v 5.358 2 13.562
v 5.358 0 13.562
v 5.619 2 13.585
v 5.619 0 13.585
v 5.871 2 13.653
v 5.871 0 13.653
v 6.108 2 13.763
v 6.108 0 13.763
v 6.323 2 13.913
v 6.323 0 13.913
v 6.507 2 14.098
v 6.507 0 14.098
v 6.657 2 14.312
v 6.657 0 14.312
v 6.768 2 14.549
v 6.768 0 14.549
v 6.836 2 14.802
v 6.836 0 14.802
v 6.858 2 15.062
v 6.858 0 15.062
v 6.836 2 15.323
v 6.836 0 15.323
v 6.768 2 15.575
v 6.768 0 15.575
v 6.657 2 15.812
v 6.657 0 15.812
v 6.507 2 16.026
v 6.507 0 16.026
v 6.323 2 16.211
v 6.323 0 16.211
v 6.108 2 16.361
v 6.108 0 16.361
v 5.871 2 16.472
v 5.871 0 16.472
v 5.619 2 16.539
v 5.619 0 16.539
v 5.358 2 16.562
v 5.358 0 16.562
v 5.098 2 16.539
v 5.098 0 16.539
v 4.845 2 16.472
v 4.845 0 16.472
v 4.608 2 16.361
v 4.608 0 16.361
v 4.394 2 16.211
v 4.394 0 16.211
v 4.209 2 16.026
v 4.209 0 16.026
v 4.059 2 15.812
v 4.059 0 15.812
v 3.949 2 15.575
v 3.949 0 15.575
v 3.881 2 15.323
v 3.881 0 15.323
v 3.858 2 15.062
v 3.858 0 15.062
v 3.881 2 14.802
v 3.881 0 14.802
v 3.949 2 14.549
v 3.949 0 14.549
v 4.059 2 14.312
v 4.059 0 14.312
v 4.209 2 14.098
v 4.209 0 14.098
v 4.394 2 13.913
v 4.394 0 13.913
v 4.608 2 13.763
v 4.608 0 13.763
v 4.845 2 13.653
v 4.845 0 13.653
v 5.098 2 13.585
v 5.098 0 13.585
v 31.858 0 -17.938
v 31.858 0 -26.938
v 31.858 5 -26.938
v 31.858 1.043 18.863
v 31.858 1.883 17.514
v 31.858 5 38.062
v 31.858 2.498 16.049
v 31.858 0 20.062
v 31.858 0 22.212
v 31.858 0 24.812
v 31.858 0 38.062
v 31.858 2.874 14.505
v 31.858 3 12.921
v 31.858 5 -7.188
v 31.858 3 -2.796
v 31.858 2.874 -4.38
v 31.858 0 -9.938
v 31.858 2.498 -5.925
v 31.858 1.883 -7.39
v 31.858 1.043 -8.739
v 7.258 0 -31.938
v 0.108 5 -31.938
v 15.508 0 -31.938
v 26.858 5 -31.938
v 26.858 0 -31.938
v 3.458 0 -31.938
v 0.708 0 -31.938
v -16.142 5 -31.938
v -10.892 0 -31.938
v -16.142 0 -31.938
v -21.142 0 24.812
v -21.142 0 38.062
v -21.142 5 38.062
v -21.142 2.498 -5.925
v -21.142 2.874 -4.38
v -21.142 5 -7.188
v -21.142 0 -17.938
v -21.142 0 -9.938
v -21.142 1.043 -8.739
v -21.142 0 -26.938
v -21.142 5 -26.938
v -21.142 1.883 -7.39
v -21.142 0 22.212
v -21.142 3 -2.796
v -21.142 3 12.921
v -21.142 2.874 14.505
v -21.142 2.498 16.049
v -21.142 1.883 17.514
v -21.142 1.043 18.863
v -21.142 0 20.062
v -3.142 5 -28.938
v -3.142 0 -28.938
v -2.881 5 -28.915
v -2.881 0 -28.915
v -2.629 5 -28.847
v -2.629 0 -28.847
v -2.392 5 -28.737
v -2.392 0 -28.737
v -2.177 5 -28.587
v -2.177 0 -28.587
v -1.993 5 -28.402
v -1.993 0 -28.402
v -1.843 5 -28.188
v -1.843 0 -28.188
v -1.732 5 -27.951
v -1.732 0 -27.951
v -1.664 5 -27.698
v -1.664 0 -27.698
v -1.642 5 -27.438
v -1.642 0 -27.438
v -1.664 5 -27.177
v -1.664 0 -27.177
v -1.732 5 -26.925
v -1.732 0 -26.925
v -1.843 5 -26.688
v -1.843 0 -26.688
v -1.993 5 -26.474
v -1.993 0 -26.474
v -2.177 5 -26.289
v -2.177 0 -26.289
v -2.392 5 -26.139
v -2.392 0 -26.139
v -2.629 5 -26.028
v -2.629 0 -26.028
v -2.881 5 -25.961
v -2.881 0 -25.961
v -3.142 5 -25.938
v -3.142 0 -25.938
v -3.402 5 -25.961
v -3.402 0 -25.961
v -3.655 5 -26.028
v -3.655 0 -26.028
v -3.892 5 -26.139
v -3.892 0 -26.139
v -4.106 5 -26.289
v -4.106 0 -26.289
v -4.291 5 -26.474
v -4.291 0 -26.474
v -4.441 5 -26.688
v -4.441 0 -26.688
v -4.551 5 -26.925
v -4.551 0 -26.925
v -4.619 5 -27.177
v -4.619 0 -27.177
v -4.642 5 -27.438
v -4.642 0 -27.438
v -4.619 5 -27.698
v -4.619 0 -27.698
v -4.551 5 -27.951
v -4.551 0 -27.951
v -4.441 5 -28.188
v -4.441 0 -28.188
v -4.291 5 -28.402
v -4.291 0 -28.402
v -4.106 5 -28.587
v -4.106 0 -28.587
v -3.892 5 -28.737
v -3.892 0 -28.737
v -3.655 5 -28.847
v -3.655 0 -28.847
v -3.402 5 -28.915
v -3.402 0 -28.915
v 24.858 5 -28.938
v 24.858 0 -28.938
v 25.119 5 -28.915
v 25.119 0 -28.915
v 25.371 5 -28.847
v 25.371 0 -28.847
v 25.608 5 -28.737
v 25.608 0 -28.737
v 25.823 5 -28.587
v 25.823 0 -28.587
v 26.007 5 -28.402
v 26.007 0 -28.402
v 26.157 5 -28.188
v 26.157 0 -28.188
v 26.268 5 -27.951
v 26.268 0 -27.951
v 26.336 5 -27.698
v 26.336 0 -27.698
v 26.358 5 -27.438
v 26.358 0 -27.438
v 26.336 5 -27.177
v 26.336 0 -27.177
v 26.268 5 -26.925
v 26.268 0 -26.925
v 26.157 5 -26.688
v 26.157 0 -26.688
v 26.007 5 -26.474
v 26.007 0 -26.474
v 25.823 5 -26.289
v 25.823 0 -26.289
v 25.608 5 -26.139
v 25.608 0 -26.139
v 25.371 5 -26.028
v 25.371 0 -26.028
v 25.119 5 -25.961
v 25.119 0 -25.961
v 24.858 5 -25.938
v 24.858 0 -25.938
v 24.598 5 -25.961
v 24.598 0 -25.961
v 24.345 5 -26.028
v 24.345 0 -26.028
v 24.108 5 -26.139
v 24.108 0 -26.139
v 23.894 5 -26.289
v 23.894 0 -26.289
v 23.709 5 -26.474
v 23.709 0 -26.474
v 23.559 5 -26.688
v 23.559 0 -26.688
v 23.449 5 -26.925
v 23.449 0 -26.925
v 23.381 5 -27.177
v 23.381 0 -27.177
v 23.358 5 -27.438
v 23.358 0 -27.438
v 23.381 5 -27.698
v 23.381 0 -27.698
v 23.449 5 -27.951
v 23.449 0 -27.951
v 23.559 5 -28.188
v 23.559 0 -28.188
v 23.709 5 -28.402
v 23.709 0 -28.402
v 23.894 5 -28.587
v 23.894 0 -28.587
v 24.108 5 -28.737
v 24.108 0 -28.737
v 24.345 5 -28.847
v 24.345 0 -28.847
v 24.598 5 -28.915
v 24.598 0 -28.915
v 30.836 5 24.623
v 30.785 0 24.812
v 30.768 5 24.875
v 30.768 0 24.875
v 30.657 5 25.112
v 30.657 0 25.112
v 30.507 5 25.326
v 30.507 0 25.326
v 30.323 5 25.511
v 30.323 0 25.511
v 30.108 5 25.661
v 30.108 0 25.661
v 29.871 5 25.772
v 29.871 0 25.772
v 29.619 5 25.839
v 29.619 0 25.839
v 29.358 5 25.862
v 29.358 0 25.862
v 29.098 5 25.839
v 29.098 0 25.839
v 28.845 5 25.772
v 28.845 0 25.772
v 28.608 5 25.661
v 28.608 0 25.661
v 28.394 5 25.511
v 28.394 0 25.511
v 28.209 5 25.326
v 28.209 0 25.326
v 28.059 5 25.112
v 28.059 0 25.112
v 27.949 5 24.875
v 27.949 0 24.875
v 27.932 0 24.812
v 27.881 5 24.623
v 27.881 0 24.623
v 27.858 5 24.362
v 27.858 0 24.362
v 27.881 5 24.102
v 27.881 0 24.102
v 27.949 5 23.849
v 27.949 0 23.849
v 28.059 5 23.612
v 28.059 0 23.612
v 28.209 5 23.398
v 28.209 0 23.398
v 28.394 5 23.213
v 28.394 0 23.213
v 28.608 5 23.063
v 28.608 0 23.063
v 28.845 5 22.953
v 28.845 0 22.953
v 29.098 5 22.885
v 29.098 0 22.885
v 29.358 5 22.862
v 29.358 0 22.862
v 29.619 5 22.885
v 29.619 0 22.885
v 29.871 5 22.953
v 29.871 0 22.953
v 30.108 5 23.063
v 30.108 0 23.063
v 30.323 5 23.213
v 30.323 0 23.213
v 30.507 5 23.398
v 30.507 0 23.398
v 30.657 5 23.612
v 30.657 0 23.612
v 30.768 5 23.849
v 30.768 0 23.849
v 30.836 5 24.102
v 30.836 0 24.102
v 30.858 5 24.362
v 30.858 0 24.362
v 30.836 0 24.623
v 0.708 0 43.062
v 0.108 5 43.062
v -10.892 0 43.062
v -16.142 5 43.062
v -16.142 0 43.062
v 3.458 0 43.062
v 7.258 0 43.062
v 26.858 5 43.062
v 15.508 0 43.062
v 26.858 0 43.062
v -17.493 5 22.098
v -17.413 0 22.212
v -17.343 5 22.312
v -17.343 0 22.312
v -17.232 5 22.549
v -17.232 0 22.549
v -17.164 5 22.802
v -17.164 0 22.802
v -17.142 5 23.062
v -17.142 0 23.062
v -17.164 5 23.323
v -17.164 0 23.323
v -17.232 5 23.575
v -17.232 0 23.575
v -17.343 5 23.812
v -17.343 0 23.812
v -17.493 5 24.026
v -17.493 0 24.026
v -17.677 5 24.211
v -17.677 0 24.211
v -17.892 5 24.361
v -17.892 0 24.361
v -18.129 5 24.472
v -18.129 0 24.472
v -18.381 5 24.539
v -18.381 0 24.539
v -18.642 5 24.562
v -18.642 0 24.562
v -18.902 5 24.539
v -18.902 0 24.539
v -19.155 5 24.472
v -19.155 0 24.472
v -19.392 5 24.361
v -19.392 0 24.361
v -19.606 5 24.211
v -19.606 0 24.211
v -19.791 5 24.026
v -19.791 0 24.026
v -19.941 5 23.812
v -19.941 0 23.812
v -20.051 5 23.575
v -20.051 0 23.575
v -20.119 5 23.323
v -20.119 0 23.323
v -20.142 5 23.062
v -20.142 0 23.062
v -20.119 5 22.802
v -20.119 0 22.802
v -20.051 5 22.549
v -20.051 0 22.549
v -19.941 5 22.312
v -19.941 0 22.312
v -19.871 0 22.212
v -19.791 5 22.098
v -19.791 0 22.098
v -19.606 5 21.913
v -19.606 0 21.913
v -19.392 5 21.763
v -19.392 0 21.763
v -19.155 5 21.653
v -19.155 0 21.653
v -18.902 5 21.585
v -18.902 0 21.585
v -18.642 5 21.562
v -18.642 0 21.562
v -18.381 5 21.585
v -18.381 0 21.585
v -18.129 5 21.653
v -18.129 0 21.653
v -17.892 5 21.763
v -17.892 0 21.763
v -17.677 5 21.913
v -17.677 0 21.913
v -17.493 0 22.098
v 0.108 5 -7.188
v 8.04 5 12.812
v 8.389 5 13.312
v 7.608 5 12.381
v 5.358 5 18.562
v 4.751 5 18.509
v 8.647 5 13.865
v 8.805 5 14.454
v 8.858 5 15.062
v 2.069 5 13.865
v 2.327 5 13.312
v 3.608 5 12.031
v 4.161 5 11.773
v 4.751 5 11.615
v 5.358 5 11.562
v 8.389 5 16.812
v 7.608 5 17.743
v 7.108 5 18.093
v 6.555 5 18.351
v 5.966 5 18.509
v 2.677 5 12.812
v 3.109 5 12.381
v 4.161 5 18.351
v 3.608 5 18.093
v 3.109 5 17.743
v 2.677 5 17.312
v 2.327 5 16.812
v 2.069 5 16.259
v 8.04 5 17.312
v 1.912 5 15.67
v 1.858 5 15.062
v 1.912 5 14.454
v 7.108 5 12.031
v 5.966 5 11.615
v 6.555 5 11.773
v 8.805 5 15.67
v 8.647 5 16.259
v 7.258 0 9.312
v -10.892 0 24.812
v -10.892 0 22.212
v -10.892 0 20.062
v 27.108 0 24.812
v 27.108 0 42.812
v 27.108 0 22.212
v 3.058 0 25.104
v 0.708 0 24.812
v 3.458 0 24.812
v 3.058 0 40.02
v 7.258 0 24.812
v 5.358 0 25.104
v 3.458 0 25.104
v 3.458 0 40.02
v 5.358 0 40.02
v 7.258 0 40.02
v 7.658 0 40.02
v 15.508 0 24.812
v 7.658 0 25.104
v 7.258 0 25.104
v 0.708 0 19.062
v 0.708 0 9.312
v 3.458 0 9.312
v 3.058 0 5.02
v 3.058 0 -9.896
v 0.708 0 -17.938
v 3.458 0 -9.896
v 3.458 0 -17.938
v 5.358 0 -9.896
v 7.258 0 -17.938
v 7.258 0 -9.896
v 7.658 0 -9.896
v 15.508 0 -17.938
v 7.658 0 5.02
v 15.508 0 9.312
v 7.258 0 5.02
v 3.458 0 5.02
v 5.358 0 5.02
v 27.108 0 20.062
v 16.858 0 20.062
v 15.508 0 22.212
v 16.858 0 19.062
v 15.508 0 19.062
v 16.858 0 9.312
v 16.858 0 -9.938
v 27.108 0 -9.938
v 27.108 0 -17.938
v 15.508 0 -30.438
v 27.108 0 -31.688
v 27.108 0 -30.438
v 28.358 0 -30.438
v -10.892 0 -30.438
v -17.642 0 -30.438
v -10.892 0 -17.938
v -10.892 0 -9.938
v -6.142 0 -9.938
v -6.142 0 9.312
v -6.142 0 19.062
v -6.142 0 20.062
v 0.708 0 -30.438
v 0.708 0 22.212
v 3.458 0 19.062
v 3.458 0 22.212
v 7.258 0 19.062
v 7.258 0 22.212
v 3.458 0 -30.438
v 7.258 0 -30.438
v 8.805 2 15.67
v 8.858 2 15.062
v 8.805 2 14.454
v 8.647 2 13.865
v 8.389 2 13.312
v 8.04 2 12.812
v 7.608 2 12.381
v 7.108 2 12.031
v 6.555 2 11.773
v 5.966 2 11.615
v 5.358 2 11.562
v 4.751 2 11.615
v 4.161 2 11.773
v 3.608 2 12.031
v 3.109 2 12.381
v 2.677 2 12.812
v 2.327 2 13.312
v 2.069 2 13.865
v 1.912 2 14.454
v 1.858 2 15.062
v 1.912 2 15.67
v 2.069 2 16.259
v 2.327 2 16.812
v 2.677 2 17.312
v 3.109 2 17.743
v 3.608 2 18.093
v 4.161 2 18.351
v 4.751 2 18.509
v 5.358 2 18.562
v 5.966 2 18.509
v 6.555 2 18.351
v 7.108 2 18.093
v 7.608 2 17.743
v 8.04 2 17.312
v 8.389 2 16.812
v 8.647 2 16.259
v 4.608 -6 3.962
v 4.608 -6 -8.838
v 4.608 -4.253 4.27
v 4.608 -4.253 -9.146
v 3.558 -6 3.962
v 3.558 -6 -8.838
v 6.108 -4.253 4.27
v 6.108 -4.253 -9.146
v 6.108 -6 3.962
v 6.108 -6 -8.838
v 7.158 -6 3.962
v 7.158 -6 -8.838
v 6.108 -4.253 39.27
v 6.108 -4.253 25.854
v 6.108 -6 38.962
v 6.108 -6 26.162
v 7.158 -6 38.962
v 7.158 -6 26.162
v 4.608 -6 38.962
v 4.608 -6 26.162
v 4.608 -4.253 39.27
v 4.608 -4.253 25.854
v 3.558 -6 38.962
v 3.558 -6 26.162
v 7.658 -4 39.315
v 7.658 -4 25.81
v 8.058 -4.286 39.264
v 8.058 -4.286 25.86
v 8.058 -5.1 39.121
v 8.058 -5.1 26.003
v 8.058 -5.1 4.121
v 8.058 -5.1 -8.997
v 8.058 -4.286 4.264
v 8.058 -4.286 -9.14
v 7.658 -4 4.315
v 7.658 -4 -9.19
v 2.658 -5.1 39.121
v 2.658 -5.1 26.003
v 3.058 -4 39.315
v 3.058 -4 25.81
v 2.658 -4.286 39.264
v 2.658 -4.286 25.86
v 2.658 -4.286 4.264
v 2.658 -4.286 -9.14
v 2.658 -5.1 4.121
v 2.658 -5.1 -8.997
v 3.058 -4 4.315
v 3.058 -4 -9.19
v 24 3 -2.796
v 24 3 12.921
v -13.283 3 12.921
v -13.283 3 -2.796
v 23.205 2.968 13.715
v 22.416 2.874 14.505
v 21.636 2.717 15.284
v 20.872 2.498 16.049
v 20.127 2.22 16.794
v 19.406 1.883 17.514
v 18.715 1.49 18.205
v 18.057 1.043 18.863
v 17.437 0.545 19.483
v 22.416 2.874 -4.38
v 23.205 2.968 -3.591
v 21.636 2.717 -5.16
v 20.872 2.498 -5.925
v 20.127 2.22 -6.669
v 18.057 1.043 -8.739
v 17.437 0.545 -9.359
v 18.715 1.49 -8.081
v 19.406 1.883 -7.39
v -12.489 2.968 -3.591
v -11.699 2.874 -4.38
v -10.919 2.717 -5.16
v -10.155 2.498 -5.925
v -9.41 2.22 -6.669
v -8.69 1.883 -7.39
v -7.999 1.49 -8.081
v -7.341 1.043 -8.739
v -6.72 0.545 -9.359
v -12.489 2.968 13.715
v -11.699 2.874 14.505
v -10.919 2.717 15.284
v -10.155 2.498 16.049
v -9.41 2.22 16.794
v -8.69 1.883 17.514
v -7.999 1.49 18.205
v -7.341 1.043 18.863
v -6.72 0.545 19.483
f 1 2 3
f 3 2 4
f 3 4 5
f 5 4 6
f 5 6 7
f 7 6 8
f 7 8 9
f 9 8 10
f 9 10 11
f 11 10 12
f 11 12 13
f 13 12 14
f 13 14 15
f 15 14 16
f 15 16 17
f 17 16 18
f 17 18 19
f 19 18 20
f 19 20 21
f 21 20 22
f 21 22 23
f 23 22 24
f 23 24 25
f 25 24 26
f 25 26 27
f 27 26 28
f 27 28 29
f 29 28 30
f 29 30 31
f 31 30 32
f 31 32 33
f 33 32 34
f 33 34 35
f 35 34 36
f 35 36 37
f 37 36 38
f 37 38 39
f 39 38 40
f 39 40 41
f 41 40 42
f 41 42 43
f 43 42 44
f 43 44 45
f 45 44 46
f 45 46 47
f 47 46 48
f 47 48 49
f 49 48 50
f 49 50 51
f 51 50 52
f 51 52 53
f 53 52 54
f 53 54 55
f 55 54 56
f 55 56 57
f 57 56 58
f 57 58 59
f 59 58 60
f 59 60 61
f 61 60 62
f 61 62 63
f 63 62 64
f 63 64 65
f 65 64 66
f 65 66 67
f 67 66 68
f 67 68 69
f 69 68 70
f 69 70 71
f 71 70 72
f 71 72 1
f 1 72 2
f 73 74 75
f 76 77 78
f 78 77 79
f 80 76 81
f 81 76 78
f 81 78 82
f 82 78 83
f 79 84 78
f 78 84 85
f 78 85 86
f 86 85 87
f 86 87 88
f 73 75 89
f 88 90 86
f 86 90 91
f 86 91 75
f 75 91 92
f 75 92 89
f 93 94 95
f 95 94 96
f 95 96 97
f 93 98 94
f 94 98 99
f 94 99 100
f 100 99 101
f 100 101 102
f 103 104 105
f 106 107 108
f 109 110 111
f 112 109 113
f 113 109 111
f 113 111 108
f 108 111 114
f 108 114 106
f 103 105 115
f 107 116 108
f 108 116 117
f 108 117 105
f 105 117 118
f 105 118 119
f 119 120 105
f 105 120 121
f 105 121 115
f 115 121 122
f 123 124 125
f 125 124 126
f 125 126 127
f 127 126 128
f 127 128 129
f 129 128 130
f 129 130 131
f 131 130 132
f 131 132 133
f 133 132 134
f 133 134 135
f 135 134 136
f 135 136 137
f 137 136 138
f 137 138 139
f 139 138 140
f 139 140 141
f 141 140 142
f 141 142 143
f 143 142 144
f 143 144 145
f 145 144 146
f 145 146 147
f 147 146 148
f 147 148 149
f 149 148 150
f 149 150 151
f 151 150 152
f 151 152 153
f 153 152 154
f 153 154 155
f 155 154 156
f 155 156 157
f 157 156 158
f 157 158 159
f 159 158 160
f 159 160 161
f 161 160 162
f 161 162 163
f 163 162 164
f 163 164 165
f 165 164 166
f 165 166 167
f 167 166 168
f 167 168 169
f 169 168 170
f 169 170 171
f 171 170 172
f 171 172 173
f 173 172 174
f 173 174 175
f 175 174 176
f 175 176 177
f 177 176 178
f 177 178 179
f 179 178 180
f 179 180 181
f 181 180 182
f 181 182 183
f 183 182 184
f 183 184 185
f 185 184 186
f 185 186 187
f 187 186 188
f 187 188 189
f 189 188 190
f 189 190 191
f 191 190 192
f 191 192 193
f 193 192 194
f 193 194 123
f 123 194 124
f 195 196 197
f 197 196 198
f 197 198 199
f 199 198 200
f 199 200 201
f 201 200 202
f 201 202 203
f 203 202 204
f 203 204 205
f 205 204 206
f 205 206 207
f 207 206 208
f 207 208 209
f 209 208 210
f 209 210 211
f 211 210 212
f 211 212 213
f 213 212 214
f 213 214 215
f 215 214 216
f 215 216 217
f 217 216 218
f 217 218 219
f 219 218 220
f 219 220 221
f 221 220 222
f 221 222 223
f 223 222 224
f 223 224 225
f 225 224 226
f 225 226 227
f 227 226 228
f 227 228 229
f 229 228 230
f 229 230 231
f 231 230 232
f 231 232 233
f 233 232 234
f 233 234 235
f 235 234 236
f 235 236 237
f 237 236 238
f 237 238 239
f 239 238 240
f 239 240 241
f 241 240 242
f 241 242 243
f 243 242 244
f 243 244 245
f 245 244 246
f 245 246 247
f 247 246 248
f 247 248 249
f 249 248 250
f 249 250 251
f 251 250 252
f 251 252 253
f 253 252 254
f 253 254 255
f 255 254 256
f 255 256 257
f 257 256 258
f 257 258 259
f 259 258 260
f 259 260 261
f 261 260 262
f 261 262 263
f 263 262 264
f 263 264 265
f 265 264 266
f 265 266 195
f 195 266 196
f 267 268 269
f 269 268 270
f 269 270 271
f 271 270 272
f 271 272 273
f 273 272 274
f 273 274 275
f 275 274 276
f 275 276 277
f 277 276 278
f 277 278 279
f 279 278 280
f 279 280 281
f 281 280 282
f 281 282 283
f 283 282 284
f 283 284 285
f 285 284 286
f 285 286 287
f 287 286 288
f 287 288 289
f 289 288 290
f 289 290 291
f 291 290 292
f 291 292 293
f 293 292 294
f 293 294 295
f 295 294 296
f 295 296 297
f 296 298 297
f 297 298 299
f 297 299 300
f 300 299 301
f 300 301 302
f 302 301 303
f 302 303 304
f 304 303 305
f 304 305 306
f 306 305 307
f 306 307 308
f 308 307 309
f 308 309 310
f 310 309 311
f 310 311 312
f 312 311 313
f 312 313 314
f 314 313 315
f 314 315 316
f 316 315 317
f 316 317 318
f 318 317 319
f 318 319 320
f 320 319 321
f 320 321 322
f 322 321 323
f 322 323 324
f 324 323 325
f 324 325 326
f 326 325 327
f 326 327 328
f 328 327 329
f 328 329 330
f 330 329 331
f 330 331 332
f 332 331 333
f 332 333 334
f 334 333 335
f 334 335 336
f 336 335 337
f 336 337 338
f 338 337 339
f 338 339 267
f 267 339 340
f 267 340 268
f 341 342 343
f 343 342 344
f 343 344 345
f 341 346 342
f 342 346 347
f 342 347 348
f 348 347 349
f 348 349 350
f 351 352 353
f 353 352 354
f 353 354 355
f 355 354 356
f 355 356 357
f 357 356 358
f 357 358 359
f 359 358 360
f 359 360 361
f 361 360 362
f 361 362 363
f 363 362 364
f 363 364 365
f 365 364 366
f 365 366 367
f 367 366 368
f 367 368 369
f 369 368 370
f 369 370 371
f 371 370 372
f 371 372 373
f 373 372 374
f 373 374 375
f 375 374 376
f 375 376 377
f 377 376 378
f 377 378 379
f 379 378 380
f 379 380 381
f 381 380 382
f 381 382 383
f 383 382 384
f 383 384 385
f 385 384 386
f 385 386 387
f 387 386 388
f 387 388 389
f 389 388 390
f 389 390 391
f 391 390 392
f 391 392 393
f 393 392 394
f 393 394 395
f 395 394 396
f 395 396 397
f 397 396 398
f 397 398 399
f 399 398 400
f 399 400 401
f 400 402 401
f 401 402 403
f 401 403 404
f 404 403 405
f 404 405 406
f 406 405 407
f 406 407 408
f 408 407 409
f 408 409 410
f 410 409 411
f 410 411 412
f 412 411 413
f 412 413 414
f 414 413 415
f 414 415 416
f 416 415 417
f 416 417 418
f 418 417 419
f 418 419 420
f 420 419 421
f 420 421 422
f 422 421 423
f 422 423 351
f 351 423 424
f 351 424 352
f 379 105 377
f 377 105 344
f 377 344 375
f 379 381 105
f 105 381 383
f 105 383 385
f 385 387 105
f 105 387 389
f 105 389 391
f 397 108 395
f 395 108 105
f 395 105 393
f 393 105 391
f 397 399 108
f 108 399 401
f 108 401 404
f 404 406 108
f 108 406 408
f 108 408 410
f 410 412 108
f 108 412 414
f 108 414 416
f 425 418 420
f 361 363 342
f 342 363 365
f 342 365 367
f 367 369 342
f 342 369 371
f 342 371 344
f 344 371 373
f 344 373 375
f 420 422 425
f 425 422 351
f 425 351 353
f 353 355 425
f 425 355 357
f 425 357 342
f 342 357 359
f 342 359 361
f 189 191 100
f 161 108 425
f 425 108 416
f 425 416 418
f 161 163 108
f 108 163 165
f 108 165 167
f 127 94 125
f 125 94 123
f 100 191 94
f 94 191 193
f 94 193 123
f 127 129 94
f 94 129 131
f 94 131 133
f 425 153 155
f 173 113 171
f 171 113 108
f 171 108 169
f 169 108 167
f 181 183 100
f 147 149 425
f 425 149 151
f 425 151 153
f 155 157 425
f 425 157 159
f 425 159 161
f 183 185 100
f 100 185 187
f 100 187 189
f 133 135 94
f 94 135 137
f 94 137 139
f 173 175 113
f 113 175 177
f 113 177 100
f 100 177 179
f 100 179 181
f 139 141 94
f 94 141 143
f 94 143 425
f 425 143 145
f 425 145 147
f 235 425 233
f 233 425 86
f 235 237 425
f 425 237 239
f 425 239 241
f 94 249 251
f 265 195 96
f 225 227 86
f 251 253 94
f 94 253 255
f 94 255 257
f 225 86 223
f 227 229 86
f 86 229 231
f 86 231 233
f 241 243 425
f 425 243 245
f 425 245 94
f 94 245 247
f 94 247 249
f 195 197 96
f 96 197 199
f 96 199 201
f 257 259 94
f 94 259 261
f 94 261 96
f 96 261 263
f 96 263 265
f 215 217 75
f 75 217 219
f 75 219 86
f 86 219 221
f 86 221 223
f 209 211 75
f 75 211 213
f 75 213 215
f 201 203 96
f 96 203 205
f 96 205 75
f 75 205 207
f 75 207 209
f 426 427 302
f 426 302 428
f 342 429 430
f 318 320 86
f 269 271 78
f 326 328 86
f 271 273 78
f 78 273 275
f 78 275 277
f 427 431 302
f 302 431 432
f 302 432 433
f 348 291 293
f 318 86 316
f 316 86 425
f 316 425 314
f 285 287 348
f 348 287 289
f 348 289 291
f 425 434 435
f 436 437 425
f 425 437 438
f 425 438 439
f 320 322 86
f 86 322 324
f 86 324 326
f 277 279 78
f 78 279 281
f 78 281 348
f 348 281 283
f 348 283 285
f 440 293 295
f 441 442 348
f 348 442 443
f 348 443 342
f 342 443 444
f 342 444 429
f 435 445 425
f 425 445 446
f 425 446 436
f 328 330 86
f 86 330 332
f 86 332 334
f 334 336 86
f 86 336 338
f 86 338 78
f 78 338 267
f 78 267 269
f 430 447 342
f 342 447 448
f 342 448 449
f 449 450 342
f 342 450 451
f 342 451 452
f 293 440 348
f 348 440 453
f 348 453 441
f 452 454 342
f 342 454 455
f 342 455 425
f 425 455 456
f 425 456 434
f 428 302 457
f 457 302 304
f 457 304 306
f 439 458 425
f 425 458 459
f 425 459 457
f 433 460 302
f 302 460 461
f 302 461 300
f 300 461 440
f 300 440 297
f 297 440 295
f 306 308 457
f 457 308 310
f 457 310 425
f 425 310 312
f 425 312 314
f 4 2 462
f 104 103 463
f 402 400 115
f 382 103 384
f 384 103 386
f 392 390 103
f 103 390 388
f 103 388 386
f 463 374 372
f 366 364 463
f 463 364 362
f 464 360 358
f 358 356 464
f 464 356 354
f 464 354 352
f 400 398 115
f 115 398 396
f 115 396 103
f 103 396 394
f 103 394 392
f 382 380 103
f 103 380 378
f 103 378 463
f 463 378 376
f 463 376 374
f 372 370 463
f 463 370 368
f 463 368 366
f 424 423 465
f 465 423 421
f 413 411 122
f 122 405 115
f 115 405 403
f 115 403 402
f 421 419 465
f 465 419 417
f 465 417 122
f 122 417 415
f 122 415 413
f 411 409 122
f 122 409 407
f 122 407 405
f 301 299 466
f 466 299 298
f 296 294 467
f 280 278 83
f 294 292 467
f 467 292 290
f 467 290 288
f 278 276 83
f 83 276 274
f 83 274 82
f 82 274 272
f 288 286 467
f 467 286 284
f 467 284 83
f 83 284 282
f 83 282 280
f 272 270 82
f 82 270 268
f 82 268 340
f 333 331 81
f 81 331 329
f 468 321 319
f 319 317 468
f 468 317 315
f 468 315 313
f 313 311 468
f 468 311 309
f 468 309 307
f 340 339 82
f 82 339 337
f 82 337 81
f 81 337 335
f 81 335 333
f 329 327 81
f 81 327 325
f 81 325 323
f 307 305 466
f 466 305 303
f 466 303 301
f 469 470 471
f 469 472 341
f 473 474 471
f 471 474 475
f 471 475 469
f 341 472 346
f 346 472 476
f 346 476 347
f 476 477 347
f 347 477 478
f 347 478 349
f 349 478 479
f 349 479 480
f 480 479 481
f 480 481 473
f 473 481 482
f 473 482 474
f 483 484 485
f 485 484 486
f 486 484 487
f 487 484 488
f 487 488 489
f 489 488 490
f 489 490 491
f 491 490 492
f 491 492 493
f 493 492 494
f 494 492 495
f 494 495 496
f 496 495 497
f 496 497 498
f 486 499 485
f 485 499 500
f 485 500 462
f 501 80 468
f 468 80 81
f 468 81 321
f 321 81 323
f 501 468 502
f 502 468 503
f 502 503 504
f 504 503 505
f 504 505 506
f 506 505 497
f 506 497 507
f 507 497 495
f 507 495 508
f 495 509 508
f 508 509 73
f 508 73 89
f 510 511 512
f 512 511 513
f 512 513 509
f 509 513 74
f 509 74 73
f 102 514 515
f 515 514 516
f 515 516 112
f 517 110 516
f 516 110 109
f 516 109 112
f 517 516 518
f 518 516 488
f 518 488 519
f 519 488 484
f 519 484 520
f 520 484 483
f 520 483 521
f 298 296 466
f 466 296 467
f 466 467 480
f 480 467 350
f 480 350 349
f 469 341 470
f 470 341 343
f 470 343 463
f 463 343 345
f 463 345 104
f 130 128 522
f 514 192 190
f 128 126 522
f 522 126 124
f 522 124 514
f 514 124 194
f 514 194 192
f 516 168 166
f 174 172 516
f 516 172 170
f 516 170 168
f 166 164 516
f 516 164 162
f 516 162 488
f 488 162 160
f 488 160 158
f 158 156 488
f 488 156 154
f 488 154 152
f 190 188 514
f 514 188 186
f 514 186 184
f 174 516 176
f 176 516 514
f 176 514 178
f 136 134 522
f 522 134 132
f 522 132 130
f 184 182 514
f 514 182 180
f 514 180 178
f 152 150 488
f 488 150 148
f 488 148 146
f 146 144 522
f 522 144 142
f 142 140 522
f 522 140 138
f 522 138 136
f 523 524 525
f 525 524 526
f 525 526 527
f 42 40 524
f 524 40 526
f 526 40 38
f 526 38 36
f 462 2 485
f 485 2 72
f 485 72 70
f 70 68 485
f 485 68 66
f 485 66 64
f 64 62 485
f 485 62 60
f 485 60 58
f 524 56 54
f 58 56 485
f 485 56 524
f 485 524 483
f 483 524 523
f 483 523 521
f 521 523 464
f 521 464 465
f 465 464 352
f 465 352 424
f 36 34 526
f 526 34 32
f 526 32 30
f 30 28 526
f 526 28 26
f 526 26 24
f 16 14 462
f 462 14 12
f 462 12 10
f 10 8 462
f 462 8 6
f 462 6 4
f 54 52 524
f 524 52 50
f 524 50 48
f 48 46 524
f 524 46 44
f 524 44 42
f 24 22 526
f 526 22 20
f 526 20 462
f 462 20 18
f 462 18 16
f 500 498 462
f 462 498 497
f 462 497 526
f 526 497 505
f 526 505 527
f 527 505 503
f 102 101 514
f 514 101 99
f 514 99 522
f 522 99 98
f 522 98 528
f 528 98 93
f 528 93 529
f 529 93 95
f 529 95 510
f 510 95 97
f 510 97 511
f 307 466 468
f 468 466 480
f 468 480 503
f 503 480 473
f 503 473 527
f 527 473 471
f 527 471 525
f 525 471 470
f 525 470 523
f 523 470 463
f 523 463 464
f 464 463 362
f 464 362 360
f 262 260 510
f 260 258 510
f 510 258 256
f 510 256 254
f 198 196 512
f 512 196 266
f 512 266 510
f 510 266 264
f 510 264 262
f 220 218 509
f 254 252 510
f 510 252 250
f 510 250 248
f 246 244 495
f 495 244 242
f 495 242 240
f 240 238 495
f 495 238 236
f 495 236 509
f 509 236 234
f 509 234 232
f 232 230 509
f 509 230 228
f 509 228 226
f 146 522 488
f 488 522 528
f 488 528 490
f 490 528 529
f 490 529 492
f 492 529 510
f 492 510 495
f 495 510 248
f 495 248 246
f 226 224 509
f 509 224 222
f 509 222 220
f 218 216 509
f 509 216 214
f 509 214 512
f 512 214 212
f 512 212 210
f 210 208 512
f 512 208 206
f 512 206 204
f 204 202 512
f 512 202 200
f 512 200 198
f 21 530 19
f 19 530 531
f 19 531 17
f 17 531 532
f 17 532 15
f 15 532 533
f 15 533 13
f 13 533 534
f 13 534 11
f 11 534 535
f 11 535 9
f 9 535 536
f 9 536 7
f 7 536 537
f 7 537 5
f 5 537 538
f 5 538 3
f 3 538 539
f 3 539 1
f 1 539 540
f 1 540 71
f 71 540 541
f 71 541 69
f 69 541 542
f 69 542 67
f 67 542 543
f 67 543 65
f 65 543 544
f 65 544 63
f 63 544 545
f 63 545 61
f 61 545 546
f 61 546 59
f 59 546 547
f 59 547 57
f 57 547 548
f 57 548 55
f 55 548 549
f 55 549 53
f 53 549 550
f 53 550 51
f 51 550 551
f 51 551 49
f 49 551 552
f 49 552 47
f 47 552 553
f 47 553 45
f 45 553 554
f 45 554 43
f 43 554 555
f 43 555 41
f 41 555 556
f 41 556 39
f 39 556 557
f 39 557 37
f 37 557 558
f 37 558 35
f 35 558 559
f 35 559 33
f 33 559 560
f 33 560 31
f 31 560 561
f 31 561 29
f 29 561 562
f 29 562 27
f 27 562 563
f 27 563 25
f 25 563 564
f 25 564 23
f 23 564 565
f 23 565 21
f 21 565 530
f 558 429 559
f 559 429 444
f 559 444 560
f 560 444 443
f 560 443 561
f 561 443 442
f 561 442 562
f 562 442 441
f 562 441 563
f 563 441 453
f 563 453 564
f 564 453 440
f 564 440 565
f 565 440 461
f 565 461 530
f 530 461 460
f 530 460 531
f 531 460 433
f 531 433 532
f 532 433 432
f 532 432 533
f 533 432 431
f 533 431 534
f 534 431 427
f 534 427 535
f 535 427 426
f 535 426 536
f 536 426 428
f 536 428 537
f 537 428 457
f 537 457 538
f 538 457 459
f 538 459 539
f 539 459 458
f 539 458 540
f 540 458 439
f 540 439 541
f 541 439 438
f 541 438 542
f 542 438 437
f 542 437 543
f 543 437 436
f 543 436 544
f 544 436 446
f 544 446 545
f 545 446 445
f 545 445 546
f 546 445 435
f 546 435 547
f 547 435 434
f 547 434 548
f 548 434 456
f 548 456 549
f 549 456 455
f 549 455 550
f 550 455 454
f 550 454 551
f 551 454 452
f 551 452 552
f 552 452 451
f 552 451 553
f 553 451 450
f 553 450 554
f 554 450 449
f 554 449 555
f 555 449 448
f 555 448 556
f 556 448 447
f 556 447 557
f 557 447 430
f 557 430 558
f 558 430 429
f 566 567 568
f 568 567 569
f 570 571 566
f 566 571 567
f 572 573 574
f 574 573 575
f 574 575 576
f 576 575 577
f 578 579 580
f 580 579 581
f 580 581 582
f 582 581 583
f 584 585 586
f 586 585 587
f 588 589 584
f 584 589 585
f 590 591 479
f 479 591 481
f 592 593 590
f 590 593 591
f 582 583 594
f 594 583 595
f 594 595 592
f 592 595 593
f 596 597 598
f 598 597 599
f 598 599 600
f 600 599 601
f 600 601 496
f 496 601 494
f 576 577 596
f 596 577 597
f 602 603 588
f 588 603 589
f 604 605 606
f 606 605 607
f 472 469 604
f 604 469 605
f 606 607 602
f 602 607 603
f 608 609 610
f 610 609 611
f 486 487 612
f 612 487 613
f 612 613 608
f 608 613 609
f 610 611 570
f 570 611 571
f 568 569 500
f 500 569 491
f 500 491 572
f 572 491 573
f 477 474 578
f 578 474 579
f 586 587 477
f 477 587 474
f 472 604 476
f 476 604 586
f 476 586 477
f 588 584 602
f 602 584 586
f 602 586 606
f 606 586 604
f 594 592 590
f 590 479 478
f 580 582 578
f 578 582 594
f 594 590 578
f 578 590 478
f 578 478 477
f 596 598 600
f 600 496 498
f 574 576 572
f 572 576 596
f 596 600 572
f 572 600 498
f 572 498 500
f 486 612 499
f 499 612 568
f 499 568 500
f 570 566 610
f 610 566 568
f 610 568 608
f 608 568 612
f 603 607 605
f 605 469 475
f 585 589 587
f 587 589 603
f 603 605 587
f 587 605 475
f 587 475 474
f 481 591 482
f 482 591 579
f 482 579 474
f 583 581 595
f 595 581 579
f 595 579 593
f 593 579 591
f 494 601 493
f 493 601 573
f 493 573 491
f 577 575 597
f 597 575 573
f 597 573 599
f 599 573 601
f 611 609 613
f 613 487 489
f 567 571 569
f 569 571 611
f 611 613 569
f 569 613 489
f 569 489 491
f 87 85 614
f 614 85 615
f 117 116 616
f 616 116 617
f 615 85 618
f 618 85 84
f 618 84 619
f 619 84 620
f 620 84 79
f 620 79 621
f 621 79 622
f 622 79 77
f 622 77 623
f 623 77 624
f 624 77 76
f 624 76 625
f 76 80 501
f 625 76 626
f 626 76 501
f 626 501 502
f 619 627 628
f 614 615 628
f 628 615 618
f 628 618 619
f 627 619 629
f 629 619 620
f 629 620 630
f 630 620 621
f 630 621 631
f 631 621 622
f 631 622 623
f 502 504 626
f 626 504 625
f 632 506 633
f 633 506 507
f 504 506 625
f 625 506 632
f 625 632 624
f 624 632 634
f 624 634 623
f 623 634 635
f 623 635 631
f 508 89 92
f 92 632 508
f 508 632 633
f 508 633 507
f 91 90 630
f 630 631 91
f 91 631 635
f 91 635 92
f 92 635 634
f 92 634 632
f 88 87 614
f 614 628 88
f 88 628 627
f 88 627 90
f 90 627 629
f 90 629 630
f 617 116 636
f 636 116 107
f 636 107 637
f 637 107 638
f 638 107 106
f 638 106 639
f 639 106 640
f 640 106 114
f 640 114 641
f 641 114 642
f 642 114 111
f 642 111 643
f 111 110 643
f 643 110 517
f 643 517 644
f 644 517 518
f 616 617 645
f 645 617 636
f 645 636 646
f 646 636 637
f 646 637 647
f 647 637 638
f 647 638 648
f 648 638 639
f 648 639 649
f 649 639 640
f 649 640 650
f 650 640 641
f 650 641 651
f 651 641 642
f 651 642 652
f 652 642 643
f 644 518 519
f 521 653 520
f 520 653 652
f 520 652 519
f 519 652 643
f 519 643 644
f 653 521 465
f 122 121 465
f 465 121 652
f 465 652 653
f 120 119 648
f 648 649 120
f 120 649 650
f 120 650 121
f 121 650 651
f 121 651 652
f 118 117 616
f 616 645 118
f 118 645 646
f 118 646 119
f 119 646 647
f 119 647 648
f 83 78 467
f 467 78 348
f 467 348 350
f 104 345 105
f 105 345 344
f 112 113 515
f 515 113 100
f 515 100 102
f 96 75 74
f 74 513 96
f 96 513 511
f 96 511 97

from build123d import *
from OCP.BRepFilletAPI import BRepFilletAPI_MakeChamfer

# Parameters (mm, degrees)
SKETCH1_W           = 53
SKETCH1_H           = 5
SKETCH1_H_2         = 70
SKETCH1_R           = 1.5
BOSS_EXTRUDE1_DEPTH = 5
SKETCH2_R           = 1.5
CUT_EXTRUDE1_DEPTH  = 10
SKETCH3_R           = 3.5
CUT_EXTRUDE2_DEPTH  = 3
SKETCH2_3_W         = 2.25
SKETCH2_3_H         = 15
BOSS_EXTRUDE2_DEPTH = 6
CUT_EXTRUDE3_DEPTH  = 79.961729873
CHAMFER2_SIZE       = 0.75
CHAMFER2_SIZE_2     = 4.253461365
CHAMFER3_SIZE       = 1.1
CHAMFER3_SIZE_2     = 6.238410002
SKETCH5_W           = 15
SKETCH5_H           = 30
CUT_EXTRUDE4_DEPTH  = 3
FILLET1_R           = 10
CHAMFER4_SIZE       = 5


# Some blends are built 0.0001 mm under size
with BuildPart() as part:
    # Sketch1 → Boss-Extrude1 (new body)
    # profile 1 of 2: a face of its own
    with BuildSketch(Plane(origin=(0, 0, 0), x_dir=(1, 0, 0), z_dir=(0, 1, 0))):
        with Locations((5.35835502, -40.562169312)):
            Rectangle(SKETCH1_W, SKETCH1_H)
    # profile 2 of 2: a face of its own
    with BuildSketch(Plane(origin=(0, 0, 0), x_dir=(1, 0, 0), z_dir=(0, 1, 0))):
        with Locations((5.35835502, -3.062169312)):
            Rectangle(SKETCH1_W, SKETCH1_H_2)
        with Locations(Location((29.35835502, -24.362169312, 0), (0, 0, 270))):
            Circle(SKETCH1_R, mode=Mode.SUBTRACT)
        with Locations(Location((24.85835502, 27.437830688, 0), (0, 0, 270))):
            Circle(SKETCH1_R, mode=Mode.SUBTRACT)
        with Locations(Location((-3.14164498, 27.437830688, 0), (0, 0, 270))):
            Circle(SKETCH1_R, mode=Mode.SUBTRACT)
        with Locations(Location((-18.64164498, -23.062169312, 0), (0, 0, 270))):
            Circle(SKETCH1_R, mode=Mode.SUBTRACT)
    extrude(amount=BOSS_EXTRUDE1_DEPTH)

    # Sketch2 → Cut-Extrude1 (cut)
    with BuildSketch(Plane.XZ):
        with Locations(Location((5.35835502, 15.062169312, 0), (0, 0, 270))):
            Circle(SKETCH2_R)
    extrude(amount=-CUT_EXTRUDE1_DEPTH, mode=Mode.SUBTRACT)

    # Sketch3 → Cut-Extrude2 (cut)
    with BuildSketch(Plane(origin=(0, 5, 0), x_dir=(1, 0, 0), z_dir=(0, 1, 0))):
        with Locations(Location((5.35835502, -15.062169312, 0), (0, 0, 270))):
            Circle(SKETCH3_R)
    extrude(amount=-CUT_EXTRUDE2_DEPTH, mode=Mode.SUBTRACT)

    # Sketch2<3> → Boss-Extrude2 (add)
    with BuildSketch(Plane.XZ):
        with Locations((3.48335502, -2.437830688)):
            Rectangle(SKETCH2_3_W, SKETCH2_3_H)
        with Locations((7.23335502, -2.437830688)):
            Rectangle(SKETCH2_3_W, SKETCH2_3_H)
        with Locations((7.23335502, 32.562169312)):
            Rectangle(SKETCH2_3_W, SKETCH2_3_H)
        with Locations((3.48335502, 32.562169312)):
            Rectangle(SKETCH2_3_W, SKETCH2_3_H)
    extrude(amount=BOSS_EXTRUDE2_DEPTH)

    # Sketch4 → Cut-Extrude3 (cut, through all)
    with BuildSketch(Plane.XY.offset(40.062169312)):
        Polygon((8.35835502, -4.5), (8.35835502, 0), (7.65835502, 0), (7.65835502, -4), (8.05835502, -4.285714286), (8.05835502, -5.1), (7.15835502, -6), (8.35835502, -6), (8.35835502, -4.8), align=None)
        Polygon((2.65835502, -4.285714286), (3.05835502, -4), (3.05835502, 0), (2.35835502, 0), (2.35835502, -4.5), (2.35835502, -4.8), (2.35835502, -6), (3.55835502, -6), (2.65835502, -5.1), align=None)
    extrude(amount=-CUT_EXTRUDE3_DEPTH, mode=Mode.SUBTRACT)

    # Chamfer2
    chamfer2_edges_1 = [part.edges().sort_by_distance(p)[0] for p in [
        (4.60835502, 0, -2.437830688),
    ]]
    chamfer2_side_1 = [part.faces().sort_by_distance(p)[0] for p in [
        (4.62335502, 0, -2.437830688),
    ]]
    chamfer2_edges_2 = [part.edges().sort_by_distance(p)[0] for p in [
        (6.10835502, 0, -2.437830688),
    ]]
    chamfer2_side_2 = [part.faces().sort_by_distance(p)[0] for p in [
        (6.09335502, 0, -2.437830688),
    ]]
    chamfer2_edges_3 = [part.edges().sort_by_distance(p)[0] for p in [
        (6.10835502, 0, 32.562169312),
    ]]
    chamfer2_side_3 = [part.faces().sort_by_distance(p)[0] for p in [
        (6.09335502, 0, 32.562169312),
    ]]
    chamfer2_edges_4 = [part.edges().sort_by_distance(p)[0] for p in [
        (4.60835502, 0, 32.562169312),
    ]]
    chamfer2_side_4 = [part.faces().sort_by_distance(p)[0] for p in [
        (4.62335502, 0, 32.562169312),
    ]]
    chamfer2 = BRepFilletAPI_MakeChamfer(part.part.solid().wrapped)
    for e in chamfer2_edges_1:
        chamfer2.Add(CHAMFER2_SIZE - 0.0001, CHAMFER2_SIZE_2 - 0.0001, e.wrapped, chamfer2_side_1[0].wrapped)
    for e in chamfer2_edges_2:
        chamfer2.Add(CHAMFER2_SIZE - 0.0001, CHAMFER2_SIZE_2 - 0.0001, e.wrapped, chamfer2_side_2[0].wrapped)
    for e in chamfer2_edges_3:
        chamfer2.Add(CHAMFER2_SIZE - 0.0001, CHAMFER2_SIZE_2 - 0.0001, e.wrapped, chamfer2_side_3[0].wrapped)
    for e in chamfer2_edges_4:
        chamfer2.Add(CHAMFER2_SIZE - 0.0001, CHAMFER2_SIZE_2 - 0.0001, e.wrapped, chamfer2_side_4[0].wrapped)
    add(Compound.cast(chamfer2.Shape()), mode=Mode.REPLACE)  # a hair under: the kernel refuses the full size

    # Chamfer3
    # the kernel refuses this chamfer: 6.238410002, 1.1 mm, written as the material it takes off along each edge
    with BuildSketch(Plane(origin=(20.819105437, -6, 40.062169312), x_dir=(0, -0.210138760767435, -0.977671571246258), z_dir=(-1, 0, 0))) as chamfer3_piece_1_section:
        Polygon((CHAMFER3_SIZE * 0.977671571246, -CHAMFER3_SIZE * 0.210138760767), (-CHAMFER3_SIZE_2 * 0.210138760753, -CHAMFER3_SIZE_2 * 0.97767157118), (0, 0), align=None)
    chamfer3_piece_1 = extrude(amount=33.471500834, mode=Mode.PRIVATE)
    chamfer3_piece_1 = split(chamfer3_piece_1, bisect_by=Plane(origin=(4.08335502, 0, 39.758425896), z_dir=(0, -1, 0)), keep=Keep.TOP, mode=Mode.PRIVATE)
    add(chamfer3_piece_1, mode=Mode.SUBTRACT)
    with BuildSketch(Plane(origin=(-12.652395397, -6, 25.062169312), x_dir=(0, -0.210138760767435, 0.977671571246258), z_dir=(1, 0, 0))) as chamfer3_piece_2_section:
        Polygon((CHAMFER3_SIZE * 0.977671571246, -CHAMFER3_SIZE * 0.210138760767), (-CHAMFER3_SIZE_2 * 0.210138760753, -CHAMFER3_SIZE_2 * 0.97767157118), (0, 0), align=None)
    chamfer3_piece_2 = extrude(amount=33.471500834, mode=Mode.PRIVATE)
    chamfer3_piece_2 = split(chamfer3_piece_2, bisect_by=Plane(origin=(4.08335502, 0, 25.365912729), z_dir=(0, -1, 0)), keep=Keep.TOP, mode=Mode.PRIVATE)
    add(chamfer3_piece_2, mode=Mode.SUBTRACT)
    with BuildSketch(Plane(origin=(23.369105437, -6, 40.062169312), x_dir=(0, -0.210138760767435, -0.977671571246258), z_dir=(-1, 0, 0))) as chamfer3_piece_3_section:
        Polygon((CHAMFER3_SIZE * 0.977671571246, -CHAMFER3_SIZE * 0.210138760767), (-CHAMFER3_SIZE_2 * 0.210138760753, -CHAMFER3_SIZE_2 * 0.97767157118), (0, 0), align=None)
    chamfer3_piece_3 = extrude(amount=33.471500834, mode=Mode.PRIVATE)
    chamfer3_piece_3 = split(chamfer3_piece_3, bisect_by=Plane(origin=(6.63335502, 0, 39.758425896), z_dir=(0, -1, 0)), keep=Keep.TOP, mode=Mode.PRIVATE)
    add(chamfer3_piece_3, mode=Mode.SUBTRACT)
    with BuildSketch(Plane(origin=(-10.102395397, -6, 25.062169312), x_dir=(0, -0.210138760767435, 0.977671571246258), z_dir=(1, 0, 0))) as chamfer3_piece_4_section:
        Polygon((CHAMFER3_SIZE * 0.977671571246, -CHAMFER3_SIZE * 0.210138760767), (-CHAMFER3_SIZE_2 * 0.210138760753, -CHAMFER3_SIZE_2 * 0.97767157118), (0, 0), align=None)
    chamfer3_piece_4 = extrude(amount=33.471500834, mode=Mode.PRIVATE)
    chamfer3_piece_4 = split(chamfer3_piece_4, bisect_by=Plane(origin=(6.63335502, 0, 25.365912729), z_dir=(0, -1, 0)), keep=Keep.TOP, mode=Mode.PRIVATE)
    add(chamfer3_piece_4, mode=Mode.SUBTRACT)
    with BuildSketch(Plane(origin=(23.369105437, -6, 5.062169312), x_dir=(0, -0.21013876076743537, -0.9776715712462578), z_dir=(-1, 0, 0))) as chamfer3_piece_5_section:
        Polygon((CHAMFER3_SIZE * 0.977671571246, -CHAMFER3_SIZE * 0.210138760767), (-CHAMFER3_SIZE_2 * 0.210138760753, -CHAMFER3_SIZE_2 * 0.97767157118), (0, 0), align=None)
    chamfer3_piece_5 = extrude(amount=33.471500834, mode=Mode.PRIVATE)
    chamfer3_piece_5 = split(chamfer3_piece_5, bisect_by=Plane(origin=(6.63335502, 0, 4.758425896), z_dir=(0, -1, 0)), keep=Keep.TOP, mode=Mode.PRIVATE)
    add(chamfer3_piece_5, mode=Mode.SUBTRACT)
    with BuildSketch(Plane(origin=(-10.102395397, -6, -9.937830688), x_dir=(0, -0.21013876076743562, 0.9776715712462578), z_dir=(1, 0, 0))) as chamfer3_piece_6_section:
        Polygon((CHAMFER3_SIZE * 0.977671571246, -CHAMFER3_SIZE * 0.210138760767), (-CHAMFER3_SIZE_2 * 0.210138760753, -CHAMFER3_SIZE_2 * 0.97767157118), (0, 0), align=None)
    chamfer3_piece_6 = extrude(amount=33.471500834, mode=Mode.PRIVATE)
    chamfer3_piece_6 = split(chamfer3_piece_6, bisect_by=Plane(origin=(6.63335502, 0, -9.634087271), z_dir=(0, -1, 0)), keep=Keep.TOP, mode=Mode.PRIVATE)
    add(chamfer3_piece_6, mode=Mode.SUBTRACT)
    with BuildSketch(Plane(origin=(20.819105437, -6, 5.062169312), x_dir=(0, -0.21013876076743546, -0.9776715712462578), z_dir=(-1, 0, 0))) as chamfer3_piece_7_section:
        Polygon((CHAMFER3_SIZE * 0.977671571246, -CHAMFER3_SIZE * 0.210138760767), (-CHAMFER3_SIZE_2 * 0.210138760753, -CHAMFER3_SIZE_2 * 0.97767157118), (0, 0), align=None)
    chamfer3_piece_7 = extrude(amount=33.471500834, mode=Mode.PRIVATE)
    chamfer3_piece_7 = split(chamfer3_piece_7, bisect_by=Plane(origin=(4.08335502, 0, 4.758425896), z_dir=(0, -1, 0)), keep=Keep.TOP, mode=Mode.PRIVATE)
    add(chamfer3_piece_7, mode=Mode.SUBTRACT)
    with BuildSketch(Plane(origin=(-12.652395397, -6, -9.937830688), x_dir=(-1.5437276286848704e-15, -0.21013876076743562, 0.9776715712462578), z_dir=(1, 0, 0))) as chamfer3_piece_8_section:
        Polygon((CHAMFER3_SIZE * 0.977671571246, -CHAMFER3_SIZE * 0.210138760767), (-CHAMFER3_SIZE_2 * 0.210138760753, -CHAMFER3_SIZE_2 * 0.97767157118), (0, 0), align=None)
    chamfer3_piece_8 = extrude(amount=33.471500834, mode=Mode.PRIVATE)
    chamfer3_piece_8 = split(chamfer3_piece_8, bisect_by=Plane(origin=(4.08335502, 0, -9.634087271), z_dir=(0, -1, 0)), keep=Keep.TOP, mode=Mode.PRIVATE)
    add(chamfer3_piece_8, mode=Mode.SUBTRACT)

    # Sketch5 → Cut-Extrude4 (cut)
    with BuildSketch(Plane.XZ):
        with Locations((24.35835502, 5.062169312)):
            Rectangle(SKETCH5_W, SKETCH5_H)
        with Locations((-13.64164498, 5.062169312)):
            Rectangle(SKETCH5_W, SKETCH5_H)
    extrude(amount=-CUT_EXTRUDE4_DEPTH, mode=Mode.SUBTRACT)

    # Fillet1
    # the kernel refuses this fillet: 10 mm, written as the material it adds along each edge
    with BuildSketch(Plane(origin=(31.85835502, 3, -9.937830688), x_dir=(0, -1, 0), z_dir=(-1, 0, 0))) as fillet1_piece_1:
        with BuildLine():
            CenterArc((10, 7.141428429), FILLET1_R, 180, 45.572995999)
            Line((0, 7.141428429), (0, 0))
            Line((0, 0), (3, 0))
        make_face()
    extrude(amount=32.853571071)
    with BuildSketch(Plane(origin=(16.85835502, 3, 20.062169312), x_dir=(0, -1, 0), z_dir=(1, 0, 0))) as fillet1_piece_2:
        with BuildLine():
            CenterArc((10, 7.141428429), FILLET1_R, 180, 45.572995999)
            Line((0, 7.141428429), (0, 0))
            Line((0, 0), (3, 0))
        make_face()
    extrude(amount=15)
    with BuildSketch(Plane(origin=(-6.14164498, 3, 20.062169312), x_dir=(0, -1, 0), z_dir=(-1, 0, 0))) as fillet1_piece_3:
        with BuildLine():
            CenterArc((10, -7.141428429), FILLET1_R, 134.427004001, 45.572995999)
            Line((0, -7.141428429), (0, 0))
            Line((0, 0), (3, 0))
        make_face()
    extrude(amount=15)
    with BuildSketch(Plane(origin=(-21.14164498, 3, -9.937830688), x_dir=(0, -1, 0), z_dir=(1, 0, 0))) as fillet1_piece_4:
        with BuildLine():
            CenterArc((10, -7.141428429), FILLET1_R, 134.427004001, 45.572995999)
            Line((0, -7.141428429), (0, 0))
            Line((0, 0), (3, 0))
        make_face()
    extrude(amount=32.853571071)
    with BuildSketch(Plane(origin=(-6.14164498, 3, -27.791401759), x_dir=(0, -1, 0), z_dir=(0, 0, 1))) as fillet1_piece_5:
        with BuildLine():
            CenterArc((10, -7.141428429), FILLET1_R, 134.427004001, 45.572995999)
            Line((0, -7.141428429), (0, 0))
            Line((0, 0), (3, 0))
        make_face()
    extrude(amount=65.707142143)
    with BuildSketch(Plane(origin=(16.85835502, 3, -9.937830688), x_dir=(0, -1, 0), z_dir=(0, 0, 1))) as fillet1_piece_6:
        with BuildLine():
            CenterArc((10, 7.141428429), FILLET1_R, 180, 45.572995999)
            Line((0, 7.141428429), (0, 0))
            Line((0, 0), (3, 0))
        make_face()
    extrude(amount=47.853571071)

    # Chamfer4
    chamfer4_edges = [part.edges().sort_by_distance(p)[0] for p in [
        (31.85835502, 2.5, 43.062169312),
        (-21.14164498, 2.5, 43.062169312),
        (-21.14164498, 2.5, -31.937830688),
        (31.85835502, 2.5, -31.937830688),
    ]]
    chamfer(chamfer4_edges, length=CHAMFER4_SIZE)


solid = part.part
